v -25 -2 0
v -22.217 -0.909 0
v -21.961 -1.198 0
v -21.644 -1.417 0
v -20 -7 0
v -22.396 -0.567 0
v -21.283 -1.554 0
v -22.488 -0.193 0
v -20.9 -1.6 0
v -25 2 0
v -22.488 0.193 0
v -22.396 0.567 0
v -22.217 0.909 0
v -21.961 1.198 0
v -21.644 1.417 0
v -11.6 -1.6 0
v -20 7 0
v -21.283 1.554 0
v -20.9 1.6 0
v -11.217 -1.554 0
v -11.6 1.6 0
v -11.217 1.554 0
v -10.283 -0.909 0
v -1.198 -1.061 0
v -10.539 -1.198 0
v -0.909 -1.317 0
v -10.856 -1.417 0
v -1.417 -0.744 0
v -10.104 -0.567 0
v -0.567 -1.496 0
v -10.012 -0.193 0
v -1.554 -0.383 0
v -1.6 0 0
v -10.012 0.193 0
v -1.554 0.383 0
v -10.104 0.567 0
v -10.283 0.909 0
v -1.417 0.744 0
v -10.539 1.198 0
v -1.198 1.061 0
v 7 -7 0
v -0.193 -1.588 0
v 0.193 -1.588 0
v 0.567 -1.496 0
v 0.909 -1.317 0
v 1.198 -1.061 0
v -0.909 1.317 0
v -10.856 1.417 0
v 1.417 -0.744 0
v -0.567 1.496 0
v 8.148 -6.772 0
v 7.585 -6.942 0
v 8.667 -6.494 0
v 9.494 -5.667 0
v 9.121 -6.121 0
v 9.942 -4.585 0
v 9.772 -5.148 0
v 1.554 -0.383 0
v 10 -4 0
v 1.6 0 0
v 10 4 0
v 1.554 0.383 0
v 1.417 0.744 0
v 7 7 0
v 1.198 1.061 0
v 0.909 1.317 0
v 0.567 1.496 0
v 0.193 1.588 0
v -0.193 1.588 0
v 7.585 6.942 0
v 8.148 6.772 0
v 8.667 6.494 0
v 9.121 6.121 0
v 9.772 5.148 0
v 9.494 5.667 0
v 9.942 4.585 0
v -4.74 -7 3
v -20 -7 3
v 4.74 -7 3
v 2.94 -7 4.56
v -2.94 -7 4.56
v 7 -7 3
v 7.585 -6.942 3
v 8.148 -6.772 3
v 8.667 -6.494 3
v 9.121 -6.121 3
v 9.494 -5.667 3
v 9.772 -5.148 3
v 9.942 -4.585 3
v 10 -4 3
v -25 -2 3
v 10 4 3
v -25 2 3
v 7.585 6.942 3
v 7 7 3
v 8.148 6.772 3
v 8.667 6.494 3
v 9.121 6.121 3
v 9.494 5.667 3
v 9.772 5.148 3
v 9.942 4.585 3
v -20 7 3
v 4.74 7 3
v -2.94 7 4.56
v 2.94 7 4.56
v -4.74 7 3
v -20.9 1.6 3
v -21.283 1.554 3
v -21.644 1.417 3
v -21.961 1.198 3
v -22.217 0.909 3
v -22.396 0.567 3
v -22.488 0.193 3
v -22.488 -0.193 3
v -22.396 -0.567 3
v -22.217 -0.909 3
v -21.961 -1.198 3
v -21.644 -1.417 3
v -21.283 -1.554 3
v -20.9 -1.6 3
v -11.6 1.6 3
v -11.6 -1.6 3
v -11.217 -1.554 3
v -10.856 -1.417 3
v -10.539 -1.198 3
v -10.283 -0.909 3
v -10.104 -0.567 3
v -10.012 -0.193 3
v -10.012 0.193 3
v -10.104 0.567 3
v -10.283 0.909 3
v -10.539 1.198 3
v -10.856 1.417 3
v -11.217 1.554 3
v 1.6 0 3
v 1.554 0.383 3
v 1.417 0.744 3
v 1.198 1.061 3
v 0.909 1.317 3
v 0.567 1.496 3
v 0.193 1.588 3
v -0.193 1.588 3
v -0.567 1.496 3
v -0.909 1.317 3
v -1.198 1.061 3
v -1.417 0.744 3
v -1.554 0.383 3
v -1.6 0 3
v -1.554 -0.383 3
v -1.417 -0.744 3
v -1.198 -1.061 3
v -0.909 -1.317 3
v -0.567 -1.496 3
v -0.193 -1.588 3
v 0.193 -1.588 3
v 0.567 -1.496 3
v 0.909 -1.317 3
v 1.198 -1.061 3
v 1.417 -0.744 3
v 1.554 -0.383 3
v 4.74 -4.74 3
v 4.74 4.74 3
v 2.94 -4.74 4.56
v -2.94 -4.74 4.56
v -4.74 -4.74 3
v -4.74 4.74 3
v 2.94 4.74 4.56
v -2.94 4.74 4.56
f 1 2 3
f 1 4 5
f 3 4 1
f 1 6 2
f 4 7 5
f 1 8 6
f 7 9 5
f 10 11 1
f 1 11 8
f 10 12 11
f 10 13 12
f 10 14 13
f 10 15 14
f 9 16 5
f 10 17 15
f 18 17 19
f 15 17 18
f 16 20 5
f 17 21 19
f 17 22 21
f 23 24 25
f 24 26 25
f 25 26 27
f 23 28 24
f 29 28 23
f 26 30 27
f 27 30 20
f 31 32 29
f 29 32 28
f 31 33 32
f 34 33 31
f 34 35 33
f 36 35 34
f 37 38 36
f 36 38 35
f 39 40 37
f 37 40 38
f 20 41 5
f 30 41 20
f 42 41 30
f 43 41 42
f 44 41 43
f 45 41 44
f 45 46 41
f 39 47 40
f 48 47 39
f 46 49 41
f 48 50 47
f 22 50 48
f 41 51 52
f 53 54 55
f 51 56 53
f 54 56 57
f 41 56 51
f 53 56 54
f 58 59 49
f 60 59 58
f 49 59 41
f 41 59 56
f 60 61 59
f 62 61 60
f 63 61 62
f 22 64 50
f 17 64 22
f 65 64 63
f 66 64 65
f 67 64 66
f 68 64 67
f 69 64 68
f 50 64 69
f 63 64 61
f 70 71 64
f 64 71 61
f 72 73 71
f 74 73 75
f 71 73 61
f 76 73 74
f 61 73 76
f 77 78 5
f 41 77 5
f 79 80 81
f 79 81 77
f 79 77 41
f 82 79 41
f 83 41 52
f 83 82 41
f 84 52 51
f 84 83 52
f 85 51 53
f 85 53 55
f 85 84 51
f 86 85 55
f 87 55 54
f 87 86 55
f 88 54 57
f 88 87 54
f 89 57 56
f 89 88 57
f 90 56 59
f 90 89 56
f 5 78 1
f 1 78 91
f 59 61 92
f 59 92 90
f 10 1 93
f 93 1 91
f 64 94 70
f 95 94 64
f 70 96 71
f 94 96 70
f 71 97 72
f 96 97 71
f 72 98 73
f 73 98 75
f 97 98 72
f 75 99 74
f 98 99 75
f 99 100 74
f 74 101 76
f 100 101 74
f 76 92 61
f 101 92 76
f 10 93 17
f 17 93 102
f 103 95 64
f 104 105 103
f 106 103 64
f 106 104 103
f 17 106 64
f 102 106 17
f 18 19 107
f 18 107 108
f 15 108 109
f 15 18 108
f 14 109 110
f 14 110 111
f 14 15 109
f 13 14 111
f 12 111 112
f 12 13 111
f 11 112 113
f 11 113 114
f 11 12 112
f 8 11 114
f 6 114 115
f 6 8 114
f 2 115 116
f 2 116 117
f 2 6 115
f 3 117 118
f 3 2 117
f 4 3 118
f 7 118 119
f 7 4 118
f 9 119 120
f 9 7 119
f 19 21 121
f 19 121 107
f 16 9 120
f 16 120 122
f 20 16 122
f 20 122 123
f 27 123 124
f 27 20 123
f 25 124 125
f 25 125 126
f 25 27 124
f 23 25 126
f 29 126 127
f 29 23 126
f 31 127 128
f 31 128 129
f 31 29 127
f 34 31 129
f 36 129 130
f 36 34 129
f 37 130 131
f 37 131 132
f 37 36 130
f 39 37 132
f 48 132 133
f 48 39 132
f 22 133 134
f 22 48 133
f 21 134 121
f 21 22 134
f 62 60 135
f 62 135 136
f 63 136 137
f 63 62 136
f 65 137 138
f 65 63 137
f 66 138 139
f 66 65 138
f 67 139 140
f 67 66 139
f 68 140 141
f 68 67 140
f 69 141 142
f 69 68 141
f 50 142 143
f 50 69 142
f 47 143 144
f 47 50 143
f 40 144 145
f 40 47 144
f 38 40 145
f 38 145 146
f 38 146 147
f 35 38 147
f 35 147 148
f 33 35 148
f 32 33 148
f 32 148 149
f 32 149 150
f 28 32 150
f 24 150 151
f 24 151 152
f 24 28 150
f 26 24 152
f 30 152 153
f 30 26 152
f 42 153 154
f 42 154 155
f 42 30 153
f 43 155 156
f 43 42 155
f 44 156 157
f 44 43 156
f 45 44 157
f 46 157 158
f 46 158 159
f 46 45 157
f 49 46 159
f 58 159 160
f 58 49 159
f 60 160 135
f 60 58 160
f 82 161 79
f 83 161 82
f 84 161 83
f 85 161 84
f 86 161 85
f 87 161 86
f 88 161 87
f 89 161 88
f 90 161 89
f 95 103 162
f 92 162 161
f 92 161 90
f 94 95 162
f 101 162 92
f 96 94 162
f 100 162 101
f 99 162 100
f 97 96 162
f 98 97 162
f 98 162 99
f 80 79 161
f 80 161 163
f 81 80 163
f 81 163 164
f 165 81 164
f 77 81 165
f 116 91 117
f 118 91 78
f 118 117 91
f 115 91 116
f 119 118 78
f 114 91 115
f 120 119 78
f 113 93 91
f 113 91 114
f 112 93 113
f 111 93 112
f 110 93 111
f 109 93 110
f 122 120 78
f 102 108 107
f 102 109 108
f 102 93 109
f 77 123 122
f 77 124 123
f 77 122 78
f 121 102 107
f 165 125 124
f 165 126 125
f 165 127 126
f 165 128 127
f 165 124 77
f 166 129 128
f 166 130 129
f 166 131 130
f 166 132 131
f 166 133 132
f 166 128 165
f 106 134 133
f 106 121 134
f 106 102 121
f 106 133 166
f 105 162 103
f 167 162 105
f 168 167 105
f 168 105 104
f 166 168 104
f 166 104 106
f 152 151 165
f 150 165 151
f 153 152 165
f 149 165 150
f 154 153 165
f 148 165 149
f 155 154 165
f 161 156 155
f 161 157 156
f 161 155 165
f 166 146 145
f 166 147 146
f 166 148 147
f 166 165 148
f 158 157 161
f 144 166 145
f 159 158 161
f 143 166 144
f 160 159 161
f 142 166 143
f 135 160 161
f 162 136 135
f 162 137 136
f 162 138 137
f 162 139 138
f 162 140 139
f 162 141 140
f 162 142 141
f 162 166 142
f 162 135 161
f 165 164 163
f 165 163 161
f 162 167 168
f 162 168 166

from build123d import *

# Parameters (mm, degrees)
SKETCH_R        = 1.6
PAD_DEPTH       = 3
PAD001_DEPTH    = 20
SKETCH002_W     = 9.48
SKETCH002_H     = 9.48
POCKET_DEPTH    = 1.56
CHAMFER_SIZE    = 8
FILLET_R        = 3
SKETCH003_W     = 35
SKETCH003_H     = 3
POCKET001_DEPTH = 4.561
FILLET001_R     = 3


with BuildPart() as part:
    # Sketch → Pad (new body)
    with BuildSketch(Plane.XY):
        Polygon((-10, 10), (10, 10), (10, -10), (-10, -10), (-25, -10), (-25, 10), align=None)
        Circle(SKETCH_R, mode=Mode.SUBTRACT)
        with BuildLine():
            ThreePointArc((-20.9, 1.6), (-22.5, 0), (-20.9, -1.6))
            Line((-20.9, -1.6), (-11.6, -1.6))
            ThreePointArc((-11.6, -1.6), (-10, 0), (-11.6, 1.6))
            Line((-11.6, 1.6), (-20.9, 1.6))
        make_face(mode=Mode.SUBTRACT)
    extrude(amount=PAD_DEPTH)

    # Sketch001 (on Face3 of Pad) → Pad001 (join)
    with BuildSketch(Plane.XZ.offset(10)):
        Polygon((-4.74, 3), (4.74, 3), (2.94, 4.56), (-2.94, 4.56), align=None)
    extrude(amount=-PAD001_DEPTH)

    # Sketch002 (on Face18 of Pad001) → Pocket (cut)
    with BuildSketch(Plane.XY.offset(4.56)):
        Rectangle(SKETCH002_W, SKETCH002_H)
    extrude(amount=-POCKET_DEPTH, mode=Mode.SUBTRACT)

    # Chamfer
    chamfer_edges = [part.edges().sort_by_distance(p)[0] for p in [
        (-25, 10, 1.5),
        (-25, -10, 1.5),
    ]]
    chamfer(chamfer_edges, length=CHAMFER_SIZE)

    # Fillet
    fillet_edges = [part.edges().sort_by_distance(p)[0] for p in [
        (10, 10, 1.5),
        (10, -10, 1.5),
    ]]
    fillet(fillet_edges, radius=FILLET_R)

    # Sketch003 (on Face27 of Fillet) → Pocket001 (cut, through all)
    with BuildSketch(Plane.XY.offset(4.56)):
        with Locations((-7.5, 8.5)):
            Rectangle(SKETCH003_W, SKETCH003_H)
        with Locations((-7.5, -8.5)):
            Rectangle(SKETCH003_W, SKETCH003_H)
    extrude(amount=-POCKET001_DEPTH, mode=Mode.SUBTRACT)

    # Fillet001
    fillet001_edges = [part.edges().sort_by_distance(p)[0] for p in [
        (10, -7, 1.5),
        (10, 7, 1.5),
    ]]
    fillet(fillet001_edges, radius=FILLET001_R)


solid = part.part
